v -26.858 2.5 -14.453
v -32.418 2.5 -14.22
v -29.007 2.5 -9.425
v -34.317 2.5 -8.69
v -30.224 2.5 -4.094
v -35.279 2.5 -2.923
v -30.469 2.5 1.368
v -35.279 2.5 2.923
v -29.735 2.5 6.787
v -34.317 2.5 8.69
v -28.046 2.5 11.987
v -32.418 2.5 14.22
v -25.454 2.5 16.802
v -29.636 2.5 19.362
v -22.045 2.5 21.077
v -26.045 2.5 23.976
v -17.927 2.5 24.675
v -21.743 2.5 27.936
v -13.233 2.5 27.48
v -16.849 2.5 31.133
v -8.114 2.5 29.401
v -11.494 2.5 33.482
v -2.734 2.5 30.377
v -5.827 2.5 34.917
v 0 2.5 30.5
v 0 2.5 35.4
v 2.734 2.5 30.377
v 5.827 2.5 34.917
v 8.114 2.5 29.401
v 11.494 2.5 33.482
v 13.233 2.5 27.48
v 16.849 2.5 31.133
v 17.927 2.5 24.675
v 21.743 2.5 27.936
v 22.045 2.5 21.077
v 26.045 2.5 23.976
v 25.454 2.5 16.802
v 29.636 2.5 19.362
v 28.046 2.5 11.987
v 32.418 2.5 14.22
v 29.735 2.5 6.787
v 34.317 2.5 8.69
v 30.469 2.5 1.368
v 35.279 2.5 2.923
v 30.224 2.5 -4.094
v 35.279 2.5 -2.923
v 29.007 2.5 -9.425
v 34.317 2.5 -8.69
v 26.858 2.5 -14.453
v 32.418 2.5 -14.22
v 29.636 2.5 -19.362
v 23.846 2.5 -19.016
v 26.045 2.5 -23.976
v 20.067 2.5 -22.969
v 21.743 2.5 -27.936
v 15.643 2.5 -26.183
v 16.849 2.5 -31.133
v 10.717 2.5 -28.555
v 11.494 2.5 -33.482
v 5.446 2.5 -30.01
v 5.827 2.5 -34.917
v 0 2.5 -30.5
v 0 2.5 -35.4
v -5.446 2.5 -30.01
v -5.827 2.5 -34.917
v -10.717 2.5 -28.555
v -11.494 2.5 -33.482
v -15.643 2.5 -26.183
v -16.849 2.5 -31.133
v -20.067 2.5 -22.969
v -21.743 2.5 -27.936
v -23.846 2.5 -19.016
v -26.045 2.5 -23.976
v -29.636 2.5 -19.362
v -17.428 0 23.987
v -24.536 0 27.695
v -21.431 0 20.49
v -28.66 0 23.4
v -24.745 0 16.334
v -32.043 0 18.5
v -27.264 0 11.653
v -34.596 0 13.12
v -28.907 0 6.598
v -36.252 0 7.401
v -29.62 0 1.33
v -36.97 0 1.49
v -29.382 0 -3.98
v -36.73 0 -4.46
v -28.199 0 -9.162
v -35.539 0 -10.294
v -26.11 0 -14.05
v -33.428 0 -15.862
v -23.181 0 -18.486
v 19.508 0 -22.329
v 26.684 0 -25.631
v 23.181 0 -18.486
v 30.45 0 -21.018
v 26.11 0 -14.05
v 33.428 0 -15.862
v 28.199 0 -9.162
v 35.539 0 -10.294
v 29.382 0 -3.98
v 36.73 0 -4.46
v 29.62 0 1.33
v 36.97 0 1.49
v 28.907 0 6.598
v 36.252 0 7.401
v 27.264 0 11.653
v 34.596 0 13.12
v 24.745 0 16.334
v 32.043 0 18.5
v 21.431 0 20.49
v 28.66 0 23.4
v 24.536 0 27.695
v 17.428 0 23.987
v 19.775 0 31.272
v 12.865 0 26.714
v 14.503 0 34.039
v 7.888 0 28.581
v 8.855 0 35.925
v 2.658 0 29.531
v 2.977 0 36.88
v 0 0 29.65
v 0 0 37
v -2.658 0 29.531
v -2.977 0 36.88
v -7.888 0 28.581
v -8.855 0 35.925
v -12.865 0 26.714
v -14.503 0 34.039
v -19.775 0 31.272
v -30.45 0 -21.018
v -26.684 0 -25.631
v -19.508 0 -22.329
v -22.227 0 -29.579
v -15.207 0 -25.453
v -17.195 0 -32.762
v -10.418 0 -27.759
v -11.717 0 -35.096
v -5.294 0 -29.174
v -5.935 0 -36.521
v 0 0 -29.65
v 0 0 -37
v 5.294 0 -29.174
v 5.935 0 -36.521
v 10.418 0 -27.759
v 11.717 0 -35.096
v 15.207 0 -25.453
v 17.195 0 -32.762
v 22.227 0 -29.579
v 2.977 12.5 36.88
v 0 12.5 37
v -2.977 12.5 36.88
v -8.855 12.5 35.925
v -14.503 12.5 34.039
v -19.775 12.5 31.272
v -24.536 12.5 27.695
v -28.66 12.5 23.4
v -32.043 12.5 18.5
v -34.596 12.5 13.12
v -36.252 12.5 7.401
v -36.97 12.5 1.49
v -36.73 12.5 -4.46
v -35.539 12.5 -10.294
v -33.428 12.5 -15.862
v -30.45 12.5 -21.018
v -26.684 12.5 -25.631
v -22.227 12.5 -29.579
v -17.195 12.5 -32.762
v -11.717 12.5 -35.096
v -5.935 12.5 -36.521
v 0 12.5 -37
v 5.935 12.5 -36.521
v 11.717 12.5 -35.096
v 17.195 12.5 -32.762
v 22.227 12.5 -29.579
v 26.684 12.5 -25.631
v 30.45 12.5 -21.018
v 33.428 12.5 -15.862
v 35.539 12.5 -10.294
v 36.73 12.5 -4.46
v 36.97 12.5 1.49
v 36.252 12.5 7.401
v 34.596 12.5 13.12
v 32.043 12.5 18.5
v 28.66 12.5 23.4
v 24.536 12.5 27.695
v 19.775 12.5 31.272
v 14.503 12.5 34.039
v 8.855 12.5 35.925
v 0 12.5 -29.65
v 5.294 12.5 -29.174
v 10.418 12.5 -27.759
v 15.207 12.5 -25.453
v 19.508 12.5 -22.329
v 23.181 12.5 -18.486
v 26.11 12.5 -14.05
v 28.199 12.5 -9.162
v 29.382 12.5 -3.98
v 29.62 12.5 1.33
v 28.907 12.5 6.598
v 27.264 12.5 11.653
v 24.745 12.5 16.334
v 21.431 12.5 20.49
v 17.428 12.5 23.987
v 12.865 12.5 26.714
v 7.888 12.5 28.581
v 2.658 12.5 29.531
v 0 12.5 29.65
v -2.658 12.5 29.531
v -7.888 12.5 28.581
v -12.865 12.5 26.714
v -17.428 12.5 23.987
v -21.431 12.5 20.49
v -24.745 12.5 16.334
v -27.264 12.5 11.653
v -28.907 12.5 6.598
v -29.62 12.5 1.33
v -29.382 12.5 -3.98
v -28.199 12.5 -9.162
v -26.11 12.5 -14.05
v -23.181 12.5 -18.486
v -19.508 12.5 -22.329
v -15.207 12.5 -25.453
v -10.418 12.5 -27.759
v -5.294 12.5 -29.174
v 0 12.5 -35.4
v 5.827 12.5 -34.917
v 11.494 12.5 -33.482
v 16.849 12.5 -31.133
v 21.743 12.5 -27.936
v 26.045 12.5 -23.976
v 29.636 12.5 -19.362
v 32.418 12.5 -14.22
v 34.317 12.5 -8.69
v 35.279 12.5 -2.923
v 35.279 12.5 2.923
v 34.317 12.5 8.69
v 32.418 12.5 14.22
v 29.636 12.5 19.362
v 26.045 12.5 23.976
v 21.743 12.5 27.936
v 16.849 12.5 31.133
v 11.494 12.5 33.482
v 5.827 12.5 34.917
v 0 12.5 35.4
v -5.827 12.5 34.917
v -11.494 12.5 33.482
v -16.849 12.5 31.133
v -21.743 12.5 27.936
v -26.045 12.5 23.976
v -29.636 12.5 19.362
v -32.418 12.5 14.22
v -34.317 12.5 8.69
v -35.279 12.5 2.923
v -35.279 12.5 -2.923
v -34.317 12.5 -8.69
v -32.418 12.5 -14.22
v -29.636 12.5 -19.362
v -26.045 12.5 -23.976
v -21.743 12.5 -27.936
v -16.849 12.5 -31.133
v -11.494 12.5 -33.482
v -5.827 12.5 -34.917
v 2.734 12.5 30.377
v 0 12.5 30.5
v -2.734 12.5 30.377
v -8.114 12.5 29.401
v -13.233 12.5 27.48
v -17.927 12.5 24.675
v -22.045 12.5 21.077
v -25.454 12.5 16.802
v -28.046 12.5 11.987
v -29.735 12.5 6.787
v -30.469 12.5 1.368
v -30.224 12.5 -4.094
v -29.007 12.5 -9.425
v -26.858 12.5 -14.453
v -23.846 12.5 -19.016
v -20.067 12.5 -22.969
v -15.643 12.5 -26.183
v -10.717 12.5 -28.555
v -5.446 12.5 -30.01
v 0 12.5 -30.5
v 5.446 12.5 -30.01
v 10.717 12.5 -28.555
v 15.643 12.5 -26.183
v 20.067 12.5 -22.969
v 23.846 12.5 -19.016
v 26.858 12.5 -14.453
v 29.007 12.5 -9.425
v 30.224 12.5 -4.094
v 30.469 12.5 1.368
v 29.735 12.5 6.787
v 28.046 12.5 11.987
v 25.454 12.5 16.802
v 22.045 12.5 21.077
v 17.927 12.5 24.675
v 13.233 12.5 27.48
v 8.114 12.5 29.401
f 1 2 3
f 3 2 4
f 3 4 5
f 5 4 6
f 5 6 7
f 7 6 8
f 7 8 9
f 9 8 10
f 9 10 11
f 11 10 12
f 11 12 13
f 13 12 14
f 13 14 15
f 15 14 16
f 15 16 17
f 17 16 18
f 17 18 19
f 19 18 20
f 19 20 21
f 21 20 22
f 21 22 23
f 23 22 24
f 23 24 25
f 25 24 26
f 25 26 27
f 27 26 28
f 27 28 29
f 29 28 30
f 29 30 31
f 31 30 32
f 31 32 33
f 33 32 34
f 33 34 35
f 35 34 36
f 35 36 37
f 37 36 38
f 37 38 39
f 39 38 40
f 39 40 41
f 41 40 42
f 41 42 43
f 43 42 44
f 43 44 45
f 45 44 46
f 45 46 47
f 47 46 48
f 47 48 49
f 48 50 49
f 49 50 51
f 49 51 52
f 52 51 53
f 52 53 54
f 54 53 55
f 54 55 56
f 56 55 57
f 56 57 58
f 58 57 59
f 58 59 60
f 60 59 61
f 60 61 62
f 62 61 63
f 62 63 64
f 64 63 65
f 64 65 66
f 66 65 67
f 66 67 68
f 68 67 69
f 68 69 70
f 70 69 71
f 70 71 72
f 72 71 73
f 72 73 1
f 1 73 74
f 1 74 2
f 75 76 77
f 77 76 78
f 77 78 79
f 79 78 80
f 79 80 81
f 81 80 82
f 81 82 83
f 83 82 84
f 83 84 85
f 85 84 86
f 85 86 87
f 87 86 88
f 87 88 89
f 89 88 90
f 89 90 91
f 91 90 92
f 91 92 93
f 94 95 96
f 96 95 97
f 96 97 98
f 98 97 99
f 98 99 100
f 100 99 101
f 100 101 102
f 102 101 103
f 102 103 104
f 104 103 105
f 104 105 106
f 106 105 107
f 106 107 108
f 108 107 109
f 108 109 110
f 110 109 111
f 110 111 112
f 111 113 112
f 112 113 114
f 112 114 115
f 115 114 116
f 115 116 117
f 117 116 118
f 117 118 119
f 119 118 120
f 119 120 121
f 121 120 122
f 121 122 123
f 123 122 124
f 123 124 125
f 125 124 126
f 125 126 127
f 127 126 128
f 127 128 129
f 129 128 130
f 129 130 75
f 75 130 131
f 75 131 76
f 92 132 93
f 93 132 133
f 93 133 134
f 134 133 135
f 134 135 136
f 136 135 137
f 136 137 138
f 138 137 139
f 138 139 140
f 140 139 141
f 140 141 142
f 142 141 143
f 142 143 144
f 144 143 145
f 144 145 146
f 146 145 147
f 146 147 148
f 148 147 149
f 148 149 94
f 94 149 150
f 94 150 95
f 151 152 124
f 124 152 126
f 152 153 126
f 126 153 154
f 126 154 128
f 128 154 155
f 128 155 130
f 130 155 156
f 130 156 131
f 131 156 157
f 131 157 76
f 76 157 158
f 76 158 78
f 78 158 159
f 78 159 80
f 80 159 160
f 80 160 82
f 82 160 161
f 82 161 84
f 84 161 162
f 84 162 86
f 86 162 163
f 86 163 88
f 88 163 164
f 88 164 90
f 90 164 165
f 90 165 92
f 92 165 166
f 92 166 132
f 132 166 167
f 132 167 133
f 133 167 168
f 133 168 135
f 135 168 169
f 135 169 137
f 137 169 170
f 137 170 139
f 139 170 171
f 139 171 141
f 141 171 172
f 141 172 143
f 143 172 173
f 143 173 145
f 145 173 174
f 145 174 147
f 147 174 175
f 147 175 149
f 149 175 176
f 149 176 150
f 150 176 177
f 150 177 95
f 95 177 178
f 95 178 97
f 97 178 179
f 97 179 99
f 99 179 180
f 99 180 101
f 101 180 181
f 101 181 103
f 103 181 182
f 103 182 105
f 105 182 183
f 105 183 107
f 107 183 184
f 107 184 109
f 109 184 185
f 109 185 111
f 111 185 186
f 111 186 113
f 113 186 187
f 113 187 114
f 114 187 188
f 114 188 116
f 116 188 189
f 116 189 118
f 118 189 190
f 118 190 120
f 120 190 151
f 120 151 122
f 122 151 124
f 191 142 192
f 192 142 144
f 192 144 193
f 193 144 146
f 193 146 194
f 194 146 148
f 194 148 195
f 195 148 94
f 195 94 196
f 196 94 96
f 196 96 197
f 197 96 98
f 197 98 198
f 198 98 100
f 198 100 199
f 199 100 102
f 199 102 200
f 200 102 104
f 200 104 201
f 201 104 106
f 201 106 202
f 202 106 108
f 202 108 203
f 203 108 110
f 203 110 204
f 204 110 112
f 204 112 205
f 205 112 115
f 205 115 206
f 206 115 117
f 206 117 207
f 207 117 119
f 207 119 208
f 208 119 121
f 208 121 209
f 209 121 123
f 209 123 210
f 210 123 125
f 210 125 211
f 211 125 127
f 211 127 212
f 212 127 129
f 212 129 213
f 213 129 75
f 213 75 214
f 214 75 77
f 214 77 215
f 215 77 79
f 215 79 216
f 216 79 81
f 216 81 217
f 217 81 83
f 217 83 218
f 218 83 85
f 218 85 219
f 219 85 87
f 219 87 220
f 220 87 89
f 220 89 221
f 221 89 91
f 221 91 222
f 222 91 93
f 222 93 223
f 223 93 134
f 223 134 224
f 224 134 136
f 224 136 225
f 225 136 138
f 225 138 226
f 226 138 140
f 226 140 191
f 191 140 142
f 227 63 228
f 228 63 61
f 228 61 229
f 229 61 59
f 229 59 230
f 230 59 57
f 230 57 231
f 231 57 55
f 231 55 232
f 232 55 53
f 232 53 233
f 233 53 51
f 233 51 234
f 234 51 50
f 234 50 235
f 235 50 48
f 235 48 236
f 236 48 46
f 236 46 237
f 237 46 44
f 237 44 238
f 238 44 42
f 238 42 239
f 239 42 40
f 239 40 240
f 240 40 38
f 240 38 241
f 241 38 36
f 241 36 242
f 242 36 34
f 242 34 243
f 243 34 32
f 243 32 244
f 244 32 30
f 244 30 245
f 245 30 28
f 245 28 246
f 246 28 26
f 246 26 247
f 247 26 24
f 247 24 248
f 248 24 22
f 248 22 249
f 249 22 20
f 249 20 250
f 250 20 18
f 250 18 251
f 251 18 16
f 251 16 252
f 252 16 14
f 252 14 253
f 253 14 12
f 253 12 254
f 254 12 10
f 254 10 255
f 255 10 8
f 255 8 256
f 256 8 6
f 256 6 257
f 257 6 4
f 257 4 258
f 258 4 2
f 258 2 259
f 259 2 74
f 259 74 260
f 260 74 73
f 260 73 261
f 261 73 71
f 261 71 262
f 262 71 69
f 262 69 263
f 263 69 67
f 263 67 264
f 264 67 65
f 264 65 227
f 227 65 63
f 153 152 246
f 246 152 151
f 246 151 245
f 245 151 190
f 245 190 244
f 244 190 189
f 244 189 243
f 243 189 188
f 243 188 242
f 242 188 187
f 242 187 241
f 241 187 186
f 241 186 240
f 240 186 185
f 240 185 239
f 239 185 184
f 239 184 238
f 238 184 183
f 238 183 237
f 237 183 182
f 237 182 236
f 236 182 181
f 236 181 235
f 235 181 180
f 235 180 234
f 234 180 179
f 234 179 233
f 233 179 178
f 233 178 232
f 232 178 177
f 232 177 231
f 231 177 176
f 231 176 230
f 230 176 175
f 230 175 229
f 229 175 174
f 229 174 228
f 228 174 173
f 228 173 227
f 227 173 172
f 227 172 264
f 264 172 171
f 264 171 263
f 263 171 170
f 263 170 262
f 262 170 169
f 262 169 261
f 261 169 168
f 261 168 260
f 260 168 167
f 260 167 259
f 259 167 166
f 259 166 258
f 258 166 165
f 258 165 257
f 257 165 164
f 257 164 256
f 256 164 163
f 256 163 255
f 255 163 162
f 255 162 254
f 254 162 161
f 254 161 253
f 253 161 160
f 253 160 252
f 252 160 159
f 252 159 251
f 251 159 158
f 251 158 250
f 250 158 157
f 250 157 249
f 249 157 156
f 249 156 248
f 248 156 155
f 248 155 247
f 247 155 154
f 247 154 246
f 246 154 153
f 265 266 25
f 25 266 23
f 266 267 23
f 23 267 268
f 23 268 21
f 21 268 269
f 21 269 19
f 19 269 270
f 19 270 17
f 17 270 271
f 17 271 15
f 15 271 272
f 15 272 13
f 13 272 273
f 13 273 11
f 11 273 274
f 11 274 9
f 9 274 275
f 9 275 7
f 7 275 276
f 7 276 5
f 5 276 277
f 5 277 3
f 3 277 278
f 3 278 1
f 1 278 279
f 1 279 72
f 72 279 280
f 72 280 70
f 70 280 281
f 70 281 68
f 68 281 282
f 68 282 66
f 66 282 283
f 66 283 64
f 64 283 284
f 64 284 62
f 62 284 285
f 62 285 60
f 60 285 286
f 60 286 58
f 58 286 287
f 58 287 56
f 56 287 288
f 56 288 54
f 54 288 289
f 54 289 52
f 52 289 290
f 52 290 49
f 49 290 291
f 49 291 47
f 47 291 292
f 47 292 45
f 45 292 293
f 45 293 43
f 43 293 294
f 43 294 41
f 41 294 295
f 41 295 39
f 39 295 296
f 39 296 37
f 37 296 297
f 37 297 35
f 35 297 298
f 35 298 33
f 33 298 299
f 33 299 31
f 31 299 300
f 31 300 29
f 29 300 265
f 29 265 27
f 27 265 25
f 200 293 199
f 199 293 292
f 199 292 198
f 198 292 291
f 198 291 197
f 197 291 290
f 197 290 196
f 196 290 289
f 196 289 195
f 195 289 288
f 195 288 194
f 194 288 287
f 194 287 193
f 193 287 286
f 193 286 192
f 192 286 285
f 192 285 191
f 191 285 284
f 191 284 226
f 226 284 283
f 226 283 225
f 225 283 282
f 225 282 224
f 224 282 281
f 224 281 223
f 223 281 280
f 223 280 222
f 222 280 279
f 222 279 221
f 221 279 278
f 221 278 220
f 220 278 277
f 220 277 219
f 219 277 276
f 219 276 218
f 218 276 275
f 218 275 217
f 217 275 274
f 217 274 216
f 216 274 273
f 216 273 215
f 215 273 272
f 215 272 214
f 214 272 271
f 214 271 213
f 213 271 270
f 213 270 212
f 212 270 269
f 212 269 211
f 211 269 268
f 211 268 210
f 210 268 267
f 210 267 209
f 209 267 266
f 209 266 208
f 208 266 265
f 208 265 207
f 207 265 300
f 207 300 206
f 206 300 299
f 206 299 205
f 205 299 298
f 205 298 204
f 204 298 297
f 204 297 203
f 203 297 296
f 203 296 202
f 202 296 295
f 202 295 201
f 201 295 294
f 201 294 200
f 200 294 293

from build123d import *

# Parameters (mm, degrees)
CROQUIS1_R              = 37
CROQUIS1_R_2            = 29.65
SALIENTE_EXTRUIR1_DEPTH = 2.5
CROQUIS2_R              = 37
CROQUIS2_R_2            = 35.4
CROQUIS2_R_3            = 30.5
CROQUIS2_R_4            = 29.65
SALIENTE_EXTRUIR2_DEPTH = 10


with BuildPart() as part:
    # Croquis1 → Saliente-Extruir1 (new body)
    with BuildSketch(Plane(origin=(0, 0, 0), x_dir=(1, 0, 0), z_dir=(0, 1, 0))):
        with Locations(Location((0, 0, 0), (0, 0, 270))):
            Circle(CROQUIS1_R)
        with Locations(Location((0, 0, 0), (0, 0, 270))):
            Circle(CROQUIS1_R_2, mode=Mode.SUBTRACT)
    extrude(amount=SALIENTE_EXTRUIR1_DEPTH)

    # Croquis2 → Saliente-Extruir2 (add)
    # profile 1 of 2: a face of its own
    with BuildSketch(Plane(origin=(0, 2.5, 0), x_dir=(1, 0, 0), z_dir=(0, 1, 0))):
        with Locations(Location((0, 0, 0), (0, 0, 270))):
            Circle(CROQUIS2_R)
        with Locations(Location((0, 0, 0), (0, 0, 270))):
            Circle(CROQUIS2_R_2, mode=Mode.SUBTRACT)
    # profile 2 of 2: a face of its own
    with BuildSketch(Plane(origin=(0, 2.5, 0), x_dir=(1, 0, 0), z_dir=(0, 1, 0))):
        with Locations(Location((0, 0, 0), (0, 0, 270))):
            Circle(CROQUIS2_R_3)
        with Locations(Location((0, 0, 0), (0, 0, 270))):
            Circle(CROQUIS2_R_4, mode=Mode.SUBTRACT)
    extrude(amount=SALIENTE_EXTRUIR2_DEPTH)


solid = part.part
